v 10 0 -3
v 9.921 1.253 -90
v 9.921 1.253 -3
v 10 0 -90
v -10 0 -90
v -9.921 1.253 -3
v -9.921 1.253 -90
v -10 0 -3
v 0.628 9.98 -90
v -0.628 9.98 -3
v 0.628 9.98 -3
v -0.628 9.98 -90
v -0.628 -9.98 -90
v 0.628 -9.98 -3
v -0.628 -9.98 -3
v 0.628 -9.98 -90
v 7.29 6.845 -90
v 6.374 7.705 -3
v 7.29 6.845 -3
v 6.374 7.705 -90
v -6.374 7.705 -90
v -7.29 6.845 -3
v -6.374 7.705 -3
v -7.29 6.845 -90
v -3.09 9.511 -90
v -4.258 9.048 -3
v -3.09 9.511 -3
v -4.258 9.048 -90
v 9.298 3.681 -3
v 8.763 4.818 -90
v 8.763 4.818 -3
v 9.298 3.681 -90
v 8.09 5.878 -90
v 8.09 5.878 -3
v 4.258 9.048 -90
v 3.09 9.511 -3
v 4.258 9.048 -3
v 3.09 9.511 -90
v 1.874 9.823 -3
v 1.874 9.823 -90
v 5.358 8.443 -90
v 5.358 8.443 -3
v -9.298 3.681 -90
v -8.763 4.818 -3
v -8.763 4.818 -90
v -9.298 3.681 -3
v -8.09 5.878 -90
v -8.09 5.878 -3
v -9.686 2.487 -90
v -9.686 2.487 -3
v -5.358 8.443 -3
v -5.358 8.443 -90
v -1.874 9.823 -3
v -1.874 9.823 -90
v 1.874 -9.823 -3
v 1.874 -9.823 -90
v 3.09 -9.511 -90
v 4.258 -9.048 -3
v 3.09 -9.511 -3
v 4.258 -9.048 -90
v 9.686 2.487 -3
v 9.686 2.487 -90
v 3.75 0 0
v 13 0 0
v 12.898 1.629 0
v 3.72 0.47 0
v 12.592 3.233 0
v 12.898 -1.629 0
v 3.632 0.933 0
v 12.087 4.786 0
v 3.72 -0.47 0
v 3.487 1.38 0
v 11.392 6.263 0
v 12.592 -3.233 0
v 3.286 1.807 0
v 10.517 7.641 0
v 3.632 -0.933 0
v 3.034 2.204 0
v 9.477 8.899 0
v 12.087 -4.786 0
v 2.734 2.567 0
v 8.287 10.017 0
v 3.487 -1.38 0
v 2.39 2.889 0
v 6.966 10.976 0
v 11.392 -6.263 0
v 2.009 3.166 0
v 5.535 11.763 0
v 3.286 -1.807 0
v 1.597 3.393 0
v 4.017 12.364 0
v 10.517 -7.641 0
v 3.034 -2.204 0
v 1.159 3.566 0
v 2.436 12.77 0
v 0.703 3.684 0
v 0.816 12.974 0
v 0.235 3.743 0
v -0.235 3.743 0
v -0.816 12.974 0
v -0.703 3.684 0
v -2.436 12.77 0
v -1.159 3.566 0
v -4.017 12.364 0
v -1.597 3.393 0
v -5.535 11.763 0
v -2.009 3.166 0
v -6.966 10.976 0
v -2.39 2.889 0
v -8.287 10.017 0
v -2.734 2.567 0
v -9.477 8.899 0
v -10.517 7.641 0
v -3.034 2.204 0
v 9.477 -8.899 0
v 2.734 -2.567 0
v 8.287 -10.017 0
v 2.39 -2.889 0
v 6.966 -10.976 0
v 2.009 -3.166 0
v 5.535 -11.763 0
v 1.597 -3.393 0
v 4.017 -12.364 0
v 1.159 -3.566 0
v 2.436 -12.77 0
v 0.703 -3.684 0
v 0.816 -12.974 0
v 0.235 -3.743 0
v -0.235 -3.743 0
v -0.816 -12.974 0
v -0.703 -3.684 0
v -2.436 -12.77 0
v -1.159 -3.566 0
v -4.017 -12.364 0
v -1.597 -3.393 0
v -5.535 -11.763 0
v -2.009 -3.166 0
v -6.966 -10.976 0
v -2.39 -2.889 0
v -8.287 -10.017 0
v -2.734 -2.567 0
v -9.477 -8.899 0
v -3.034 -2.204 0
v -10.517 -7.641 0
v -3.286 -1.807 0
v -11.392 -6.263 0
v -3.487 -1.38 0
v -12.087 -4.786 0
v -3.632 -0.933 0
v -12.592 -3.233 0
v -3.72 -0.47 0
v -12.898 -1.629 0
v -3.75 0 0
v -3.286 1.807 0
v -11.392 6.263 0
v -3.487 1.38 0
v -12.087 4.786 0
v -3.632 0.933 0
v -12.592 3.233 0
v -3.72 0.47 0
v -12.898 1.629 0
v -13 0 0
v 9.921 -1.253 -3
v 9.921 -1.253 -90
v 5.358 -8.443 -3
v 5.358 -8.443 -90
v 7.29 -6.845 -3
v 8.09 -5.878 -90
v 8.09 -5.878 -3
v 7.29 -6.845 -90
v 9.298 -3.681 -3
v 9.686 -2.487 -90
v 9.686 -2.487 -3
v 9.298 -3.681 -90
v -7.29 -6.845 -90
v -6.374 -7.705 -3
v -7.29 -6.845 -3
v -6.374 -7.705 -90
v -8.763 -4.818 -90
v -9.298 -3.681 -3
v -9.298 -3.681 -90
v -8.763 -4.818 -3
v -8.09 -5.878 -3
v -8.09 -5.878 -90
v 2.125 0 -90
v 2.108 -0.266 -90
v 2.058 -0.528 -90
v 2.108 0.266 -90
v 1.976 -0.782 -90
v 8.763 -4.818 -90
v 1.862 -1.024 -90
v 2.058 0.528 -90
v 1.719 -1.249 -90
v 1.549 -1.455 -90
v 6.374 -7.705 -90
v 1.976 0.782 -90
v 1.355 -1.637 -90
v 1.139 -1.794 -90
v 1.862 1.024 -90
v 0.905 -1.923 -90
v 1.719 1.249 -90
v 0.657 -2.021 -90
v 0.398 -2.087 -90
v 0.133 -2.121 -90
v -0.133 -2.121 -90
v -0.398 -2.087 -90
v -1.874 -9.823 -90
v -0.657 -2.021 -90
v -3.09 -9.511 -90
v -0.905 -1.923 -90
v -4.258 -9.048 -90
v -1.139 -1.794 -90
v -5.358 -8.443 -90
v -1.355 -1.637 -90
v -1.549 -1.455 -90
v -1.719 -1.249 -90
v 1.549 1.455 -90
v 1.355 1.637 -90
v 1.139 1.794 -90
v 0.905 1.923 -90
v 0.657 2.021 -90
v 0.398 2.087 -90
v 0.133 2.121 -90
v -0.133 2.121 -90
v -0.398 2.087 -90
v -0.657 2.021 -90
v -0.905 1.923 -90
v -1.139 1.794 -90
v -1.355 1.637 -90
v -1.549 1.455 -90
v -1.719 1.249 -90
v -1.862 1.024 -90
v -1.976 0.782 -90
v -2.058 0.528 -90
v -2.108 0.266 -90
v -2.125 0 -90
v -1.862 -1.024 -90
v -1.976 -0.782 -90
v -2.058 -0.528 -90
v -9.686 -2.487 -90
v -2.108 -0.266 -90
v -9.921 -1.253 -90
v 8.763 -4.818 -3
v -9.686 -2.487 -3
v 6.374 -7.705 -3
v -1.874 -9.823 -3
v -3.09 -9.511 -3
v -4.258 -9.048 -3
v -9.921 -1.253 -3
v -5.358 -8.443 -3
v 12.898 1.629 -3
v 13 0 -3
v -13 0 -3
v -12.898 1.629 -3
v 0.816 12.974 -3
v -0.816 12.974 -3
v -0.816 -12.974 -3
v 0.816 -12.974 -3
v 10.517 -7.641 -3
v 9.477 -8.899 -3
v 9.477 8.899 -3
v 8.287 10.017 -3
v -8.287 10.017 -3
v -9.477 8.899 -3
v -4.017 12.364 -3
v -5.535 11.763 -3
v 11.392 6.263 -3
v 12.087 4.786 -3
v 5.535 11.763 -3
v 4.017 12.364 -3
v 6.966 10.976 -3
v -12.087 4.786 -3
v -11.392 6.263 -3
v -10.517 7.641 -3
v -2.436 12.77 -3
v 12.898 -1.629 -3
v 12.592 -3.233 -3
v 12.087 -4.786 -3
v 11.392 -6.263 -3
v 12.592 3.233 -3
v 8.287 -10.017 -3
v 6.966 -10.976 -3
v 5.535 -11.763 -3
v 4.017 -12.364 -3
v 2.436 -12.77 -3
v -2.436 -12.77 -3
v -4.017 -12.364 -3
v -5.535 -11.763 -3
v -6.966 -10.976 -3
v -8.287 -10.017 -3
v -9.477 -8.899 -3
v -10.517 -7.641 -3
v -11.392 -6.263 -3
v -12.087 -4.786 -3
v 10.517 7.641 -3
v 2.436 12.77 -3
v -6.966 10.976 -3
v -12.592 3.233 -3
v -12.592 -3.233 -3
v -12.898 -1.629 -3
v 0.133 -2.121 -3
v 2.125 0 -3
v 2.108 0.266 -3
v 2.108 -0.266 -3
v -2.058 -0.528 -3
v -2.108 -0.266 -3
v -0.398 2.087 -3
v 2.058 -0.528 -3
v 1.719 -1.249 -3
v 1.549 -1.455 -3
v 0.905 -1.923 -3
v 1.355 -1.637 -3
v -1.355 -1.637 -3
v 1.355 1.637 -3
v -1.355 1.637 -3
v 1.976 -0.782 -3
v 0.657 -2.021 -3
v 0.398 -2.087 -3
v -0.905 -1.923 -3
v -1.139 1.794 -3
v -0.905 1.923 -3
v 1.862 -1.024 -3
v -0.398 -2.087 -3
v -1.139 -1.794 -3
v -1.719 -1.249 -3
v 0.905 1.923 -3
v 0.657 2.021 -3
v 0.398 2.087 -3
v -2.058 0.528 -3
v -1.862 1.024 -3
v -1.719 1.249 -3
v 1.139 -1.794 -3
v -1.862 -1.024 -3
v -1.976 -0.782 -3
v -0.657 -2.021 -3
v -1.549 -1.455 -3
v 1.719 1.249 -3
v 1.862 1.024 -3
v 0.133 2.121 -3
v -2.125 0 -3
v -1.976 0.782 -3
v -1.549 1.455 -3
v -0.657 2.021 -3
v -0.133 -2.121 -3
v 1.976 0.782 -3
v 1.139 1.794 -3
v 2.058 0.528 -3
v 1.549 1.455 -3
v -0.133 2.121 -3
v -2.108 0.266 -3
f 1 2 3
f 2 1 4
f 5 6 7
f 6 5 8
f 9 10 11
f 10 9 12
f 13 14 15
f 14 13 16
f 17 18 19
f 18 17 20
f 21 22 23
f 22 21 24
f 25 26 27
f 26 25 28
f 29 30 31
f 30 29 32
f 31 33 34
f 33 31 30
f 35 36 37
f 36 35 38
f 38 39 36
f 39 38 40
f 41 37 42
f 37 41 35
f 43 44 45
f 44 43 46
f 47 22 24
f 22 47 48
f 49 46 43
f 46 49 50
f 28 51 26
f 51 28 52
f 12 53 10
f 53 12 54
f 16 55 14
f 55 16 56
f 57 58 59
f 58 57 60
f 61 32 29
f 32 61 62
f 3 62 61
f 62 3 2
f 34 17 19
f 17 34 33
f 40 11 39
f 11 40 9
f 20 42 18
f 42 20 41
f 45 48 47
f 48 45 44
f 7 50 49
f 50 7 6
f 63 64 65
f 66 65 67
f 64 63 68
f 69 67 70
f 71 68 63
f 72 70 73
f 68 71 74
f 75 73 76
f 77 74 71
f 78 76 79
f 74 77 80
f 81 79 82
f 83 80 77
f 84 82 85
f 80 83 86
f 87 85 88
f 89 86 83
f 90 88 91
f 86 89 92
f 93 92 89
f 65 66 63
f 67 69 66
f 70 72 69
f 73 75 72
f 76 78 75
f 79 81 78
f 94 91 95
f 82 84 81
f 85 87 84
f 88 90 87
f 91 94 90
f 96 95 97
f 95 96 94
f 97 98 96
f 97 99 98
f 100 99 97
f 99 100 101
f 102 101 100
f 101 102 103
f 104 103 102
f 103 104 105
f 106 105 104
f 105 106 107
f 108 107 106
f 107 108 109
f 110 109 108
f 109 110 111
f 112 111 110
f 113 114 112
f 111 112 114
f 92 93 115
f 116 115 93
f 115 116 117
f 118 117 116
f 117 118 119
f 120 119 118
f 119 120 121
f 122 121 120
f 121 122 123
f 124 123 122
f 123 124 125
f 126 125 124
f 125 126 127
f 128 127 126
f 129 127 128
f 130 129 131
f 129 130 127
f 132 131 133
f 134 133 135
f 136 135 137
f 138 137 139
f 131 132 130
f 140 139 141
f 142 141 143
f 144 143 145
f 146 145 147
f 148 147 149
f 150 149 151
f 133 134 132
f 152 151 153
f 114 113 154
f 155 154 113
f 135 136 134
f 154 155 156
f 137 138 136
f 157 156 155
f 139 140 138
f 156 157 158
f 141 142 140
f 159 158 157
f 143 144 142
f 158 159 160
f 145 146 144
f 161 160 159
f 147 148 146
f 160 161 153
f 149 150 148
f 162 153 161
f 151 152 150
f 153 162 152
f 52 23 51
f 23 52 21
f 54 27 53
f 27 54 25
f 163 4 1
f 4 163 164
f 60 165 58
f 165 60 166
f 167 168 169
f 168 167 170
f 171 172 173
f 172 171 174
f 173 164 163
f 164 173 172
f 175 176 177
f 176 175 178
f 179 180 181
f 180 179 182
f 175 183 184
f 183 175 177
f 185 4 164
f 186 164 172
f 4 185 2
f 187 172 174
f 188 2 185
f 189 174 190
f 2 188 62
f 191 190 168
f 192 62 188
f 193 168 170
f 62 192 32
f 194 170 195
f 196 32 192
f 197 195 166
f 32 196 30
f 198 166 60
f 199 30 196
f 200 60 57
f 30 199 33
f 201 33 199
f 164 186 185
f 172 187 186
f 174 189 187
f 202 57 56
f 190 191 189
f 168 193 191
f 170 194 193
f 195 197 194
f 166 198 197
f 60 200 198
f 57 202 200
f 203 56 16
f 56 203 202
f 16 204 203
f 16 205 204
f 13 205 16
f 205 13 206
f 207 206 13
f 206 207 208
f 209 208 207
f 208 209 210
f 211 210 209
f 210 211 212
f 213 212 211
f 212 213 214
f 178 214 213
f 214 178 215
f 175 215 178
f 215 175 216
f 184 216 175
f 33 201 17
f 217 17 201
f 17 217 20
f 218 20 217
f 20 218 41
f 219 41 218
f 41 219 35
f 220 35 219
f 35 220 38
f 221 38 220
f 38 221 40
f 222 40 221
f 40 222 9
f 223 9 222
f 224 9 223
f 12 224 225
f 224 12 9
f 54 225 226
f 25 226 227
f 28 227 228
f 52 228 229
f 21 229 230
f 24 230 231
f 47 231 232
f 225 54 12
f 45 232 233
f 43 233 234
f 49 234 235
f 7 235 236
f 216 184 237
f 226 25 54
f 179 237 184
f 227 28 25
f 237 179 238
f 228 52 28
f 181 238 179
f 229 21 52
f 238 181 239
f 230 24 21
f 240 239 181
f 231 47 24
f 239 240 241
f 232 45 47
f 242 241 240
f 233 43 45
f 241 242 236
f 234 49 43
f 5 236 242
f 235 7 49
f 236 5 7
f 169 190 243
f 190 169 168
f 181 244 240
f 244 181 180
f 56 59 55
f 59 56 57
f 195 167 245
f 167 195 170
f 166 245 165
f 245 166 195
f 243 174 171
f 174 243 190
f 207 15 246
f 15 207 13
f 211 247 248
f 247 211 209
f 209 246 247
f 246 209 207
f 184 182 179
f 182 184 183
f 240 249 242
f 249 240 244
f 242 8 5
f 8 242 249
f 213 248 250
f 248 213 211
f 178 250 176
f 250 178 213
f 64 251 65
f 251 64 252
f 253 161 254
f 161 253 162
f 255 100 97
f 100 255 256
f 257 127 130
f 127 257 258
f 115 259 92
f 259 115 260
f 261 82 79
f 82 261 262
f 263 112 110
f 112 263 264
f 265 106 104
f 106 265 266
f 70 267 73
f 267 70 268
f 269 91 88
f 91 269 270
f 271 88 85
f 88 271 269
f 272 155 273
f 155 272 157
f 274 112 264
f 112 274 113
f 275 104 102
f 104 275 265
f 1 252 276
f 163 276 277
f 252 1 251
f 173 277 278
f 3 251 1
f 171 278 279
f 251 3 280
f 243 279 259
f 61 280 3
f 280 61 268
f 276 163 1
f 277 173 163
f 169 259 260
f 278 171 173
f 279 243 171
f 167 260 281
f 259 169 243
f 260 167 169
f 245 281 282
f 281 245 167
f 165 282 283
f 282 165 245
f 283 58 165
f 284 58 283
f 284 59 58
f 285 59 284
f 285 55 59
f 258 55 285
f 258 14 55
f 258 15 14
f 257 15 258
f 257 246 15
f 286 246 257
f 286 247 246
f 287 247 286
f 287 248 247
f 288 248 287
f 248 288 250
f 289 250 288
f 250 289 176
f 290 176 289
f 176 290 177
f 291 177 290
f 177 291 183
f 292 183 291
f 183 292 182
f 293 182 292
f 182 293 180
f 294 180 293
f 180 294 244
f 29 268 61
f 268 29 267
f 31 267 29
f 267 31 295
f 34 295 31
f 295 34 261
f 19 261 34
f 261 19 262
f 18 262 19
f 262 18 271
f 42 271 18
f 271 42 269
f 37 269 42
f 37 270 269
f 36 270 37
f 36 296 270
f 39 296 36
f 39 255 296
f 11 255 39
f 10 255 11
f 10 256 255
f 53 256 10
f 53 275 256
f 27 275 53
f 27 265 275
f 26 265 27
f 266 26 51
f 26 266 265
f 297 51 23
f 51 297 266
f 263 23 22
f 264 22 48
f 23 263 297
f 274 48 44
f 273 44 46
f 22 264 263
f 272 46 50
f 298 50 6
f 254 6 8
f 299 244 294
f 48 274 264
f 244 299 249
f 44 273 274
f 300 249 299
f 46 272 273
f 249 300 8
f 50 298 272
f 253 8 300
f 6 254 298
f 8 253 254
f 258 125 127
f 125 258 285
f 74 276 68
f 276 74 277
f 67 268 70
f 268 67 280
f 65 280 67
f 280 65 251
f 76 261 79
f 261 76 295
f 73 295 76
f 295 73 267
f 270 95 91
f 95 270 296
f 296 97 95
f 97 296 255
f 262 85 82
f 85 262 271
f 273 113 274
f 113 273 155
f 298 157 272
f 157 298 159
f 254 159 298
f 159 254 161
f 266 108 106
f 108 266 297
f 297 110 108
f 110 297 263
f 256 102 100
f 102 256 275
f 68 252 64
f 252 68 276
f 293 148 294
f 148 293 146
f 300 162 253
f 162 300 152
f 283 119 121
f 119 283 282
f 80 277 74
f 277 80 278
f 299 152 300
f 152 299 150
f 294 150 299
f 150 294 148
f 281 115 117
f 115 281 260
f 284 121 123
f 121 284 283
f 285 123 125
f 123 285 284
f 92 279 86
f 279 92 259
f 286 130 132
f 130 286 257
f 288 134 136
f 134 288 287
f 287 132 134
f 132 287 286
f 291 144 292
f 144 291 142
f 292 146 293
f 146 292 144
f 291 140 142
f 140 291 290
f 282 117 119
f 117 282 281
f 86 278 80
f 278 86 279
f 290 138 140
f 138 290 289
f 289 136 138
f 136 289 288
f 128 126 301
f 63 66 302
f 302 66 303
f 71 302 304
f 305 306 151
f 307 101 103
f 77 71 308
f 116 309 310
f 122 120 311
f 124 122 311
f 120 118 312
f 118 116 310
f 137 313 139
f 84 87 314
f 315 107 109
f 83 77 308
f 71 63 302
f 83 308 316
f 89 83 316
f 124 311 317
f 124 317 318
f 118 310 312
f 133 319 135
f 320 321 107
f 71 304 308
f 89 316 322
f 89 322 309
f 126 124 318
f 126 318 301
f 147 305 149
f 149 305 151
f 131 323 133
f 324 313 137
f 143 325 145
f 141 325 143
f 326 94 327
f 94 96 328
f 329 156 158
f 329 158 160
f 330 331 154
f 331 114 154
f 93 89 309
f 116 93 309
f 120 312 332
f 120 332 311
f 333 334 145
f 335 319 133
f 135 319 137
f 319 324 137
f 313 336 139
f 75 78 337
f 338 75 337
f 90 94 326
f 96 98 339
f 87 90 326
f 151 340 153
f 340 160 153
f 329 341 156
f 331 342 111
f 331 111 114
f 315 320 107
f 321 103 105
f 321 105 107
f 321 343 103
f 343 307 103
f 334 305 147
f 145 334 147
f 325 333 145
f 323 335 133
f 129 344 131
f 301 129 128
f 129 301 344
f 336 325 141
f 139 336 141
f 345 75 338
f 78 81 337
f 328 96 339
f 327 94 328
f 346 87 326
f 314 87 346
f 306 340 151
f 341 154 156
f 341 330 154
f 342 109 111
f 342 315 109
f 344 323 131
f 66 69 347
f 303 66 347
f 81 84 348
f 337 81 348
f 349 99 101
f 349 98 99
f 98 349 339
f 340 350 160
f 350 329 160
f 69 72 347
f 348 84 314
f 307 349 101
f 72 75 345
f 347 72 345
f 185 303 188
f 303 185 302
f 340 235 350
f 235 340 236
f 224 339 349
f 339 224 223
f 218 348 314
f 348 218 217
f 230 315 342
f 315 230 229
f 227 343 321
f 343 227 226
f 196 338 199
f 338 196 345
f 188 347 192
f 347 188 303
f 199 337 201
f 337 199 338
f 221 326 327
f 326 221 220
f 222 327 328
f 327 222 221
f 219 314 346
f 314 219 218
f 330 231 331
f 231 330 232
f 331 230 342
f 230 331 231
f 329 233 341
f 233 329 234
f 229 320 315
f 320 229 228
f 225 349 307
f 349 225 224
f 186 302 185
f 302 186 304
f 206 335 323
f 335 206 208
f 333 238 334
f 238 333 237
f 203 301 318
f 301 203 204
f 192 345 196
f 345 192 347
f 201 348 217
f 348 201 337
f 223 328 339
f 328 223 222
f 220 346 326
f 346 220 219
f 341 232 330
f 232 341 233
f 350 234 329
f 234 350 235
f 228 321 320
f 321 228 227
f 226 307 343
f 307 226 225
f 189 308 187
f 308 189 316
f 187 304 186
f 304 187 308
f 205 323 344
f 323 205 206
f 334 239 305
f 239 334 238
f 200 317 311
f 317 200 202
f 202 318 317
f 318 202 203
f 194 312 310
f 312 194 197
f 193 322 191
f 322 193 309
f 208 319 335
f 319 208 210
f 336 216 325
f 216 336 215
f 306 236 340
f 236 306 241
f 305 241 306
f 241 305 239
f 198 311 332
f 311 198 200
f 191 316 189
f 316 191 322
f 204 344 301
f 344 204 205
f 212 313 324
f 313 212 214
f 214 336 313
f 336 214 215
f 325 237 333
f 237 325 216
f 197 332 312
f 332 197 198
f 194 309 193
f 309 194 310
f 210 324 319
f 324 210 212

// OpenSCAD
$fn = 50;


difference() {
	union() {
		translate(v = [0, 0, -90.0000000000]) {
			cylinder(h = 90, r = 10.0000000000);
		}
		translate(v = [0, 0, -3.0000000000]) {
			cylinder(h = 3, r = 13.0000000000);
		}
	}
	union() {
		translate(v = [0, 0, 0]) {
			rotate(a = [0, 0, 0]) {
				difference() {
					union() {
						#translate(v = [0, 0, -90.0000000000]) {
							cylinder(h = 90, r = 2.0000000000);
						}
						#translate(v = [0, 0, -3]) {
							cylinder(h = 3, r1 = 2.1250000000, r2 = 3.7500000000);
						}
						#translate(v = [0, 0, -90.0000000000]) {
							cylinder(h = 90, r = 2.1250000000);
						}
						#translate(v = [0, 0, -90.0000000000]) {
							cylinder(h = 90, r = 2.0000000000);
						}
					}
					union();
				}
			}
		}
	}
}
